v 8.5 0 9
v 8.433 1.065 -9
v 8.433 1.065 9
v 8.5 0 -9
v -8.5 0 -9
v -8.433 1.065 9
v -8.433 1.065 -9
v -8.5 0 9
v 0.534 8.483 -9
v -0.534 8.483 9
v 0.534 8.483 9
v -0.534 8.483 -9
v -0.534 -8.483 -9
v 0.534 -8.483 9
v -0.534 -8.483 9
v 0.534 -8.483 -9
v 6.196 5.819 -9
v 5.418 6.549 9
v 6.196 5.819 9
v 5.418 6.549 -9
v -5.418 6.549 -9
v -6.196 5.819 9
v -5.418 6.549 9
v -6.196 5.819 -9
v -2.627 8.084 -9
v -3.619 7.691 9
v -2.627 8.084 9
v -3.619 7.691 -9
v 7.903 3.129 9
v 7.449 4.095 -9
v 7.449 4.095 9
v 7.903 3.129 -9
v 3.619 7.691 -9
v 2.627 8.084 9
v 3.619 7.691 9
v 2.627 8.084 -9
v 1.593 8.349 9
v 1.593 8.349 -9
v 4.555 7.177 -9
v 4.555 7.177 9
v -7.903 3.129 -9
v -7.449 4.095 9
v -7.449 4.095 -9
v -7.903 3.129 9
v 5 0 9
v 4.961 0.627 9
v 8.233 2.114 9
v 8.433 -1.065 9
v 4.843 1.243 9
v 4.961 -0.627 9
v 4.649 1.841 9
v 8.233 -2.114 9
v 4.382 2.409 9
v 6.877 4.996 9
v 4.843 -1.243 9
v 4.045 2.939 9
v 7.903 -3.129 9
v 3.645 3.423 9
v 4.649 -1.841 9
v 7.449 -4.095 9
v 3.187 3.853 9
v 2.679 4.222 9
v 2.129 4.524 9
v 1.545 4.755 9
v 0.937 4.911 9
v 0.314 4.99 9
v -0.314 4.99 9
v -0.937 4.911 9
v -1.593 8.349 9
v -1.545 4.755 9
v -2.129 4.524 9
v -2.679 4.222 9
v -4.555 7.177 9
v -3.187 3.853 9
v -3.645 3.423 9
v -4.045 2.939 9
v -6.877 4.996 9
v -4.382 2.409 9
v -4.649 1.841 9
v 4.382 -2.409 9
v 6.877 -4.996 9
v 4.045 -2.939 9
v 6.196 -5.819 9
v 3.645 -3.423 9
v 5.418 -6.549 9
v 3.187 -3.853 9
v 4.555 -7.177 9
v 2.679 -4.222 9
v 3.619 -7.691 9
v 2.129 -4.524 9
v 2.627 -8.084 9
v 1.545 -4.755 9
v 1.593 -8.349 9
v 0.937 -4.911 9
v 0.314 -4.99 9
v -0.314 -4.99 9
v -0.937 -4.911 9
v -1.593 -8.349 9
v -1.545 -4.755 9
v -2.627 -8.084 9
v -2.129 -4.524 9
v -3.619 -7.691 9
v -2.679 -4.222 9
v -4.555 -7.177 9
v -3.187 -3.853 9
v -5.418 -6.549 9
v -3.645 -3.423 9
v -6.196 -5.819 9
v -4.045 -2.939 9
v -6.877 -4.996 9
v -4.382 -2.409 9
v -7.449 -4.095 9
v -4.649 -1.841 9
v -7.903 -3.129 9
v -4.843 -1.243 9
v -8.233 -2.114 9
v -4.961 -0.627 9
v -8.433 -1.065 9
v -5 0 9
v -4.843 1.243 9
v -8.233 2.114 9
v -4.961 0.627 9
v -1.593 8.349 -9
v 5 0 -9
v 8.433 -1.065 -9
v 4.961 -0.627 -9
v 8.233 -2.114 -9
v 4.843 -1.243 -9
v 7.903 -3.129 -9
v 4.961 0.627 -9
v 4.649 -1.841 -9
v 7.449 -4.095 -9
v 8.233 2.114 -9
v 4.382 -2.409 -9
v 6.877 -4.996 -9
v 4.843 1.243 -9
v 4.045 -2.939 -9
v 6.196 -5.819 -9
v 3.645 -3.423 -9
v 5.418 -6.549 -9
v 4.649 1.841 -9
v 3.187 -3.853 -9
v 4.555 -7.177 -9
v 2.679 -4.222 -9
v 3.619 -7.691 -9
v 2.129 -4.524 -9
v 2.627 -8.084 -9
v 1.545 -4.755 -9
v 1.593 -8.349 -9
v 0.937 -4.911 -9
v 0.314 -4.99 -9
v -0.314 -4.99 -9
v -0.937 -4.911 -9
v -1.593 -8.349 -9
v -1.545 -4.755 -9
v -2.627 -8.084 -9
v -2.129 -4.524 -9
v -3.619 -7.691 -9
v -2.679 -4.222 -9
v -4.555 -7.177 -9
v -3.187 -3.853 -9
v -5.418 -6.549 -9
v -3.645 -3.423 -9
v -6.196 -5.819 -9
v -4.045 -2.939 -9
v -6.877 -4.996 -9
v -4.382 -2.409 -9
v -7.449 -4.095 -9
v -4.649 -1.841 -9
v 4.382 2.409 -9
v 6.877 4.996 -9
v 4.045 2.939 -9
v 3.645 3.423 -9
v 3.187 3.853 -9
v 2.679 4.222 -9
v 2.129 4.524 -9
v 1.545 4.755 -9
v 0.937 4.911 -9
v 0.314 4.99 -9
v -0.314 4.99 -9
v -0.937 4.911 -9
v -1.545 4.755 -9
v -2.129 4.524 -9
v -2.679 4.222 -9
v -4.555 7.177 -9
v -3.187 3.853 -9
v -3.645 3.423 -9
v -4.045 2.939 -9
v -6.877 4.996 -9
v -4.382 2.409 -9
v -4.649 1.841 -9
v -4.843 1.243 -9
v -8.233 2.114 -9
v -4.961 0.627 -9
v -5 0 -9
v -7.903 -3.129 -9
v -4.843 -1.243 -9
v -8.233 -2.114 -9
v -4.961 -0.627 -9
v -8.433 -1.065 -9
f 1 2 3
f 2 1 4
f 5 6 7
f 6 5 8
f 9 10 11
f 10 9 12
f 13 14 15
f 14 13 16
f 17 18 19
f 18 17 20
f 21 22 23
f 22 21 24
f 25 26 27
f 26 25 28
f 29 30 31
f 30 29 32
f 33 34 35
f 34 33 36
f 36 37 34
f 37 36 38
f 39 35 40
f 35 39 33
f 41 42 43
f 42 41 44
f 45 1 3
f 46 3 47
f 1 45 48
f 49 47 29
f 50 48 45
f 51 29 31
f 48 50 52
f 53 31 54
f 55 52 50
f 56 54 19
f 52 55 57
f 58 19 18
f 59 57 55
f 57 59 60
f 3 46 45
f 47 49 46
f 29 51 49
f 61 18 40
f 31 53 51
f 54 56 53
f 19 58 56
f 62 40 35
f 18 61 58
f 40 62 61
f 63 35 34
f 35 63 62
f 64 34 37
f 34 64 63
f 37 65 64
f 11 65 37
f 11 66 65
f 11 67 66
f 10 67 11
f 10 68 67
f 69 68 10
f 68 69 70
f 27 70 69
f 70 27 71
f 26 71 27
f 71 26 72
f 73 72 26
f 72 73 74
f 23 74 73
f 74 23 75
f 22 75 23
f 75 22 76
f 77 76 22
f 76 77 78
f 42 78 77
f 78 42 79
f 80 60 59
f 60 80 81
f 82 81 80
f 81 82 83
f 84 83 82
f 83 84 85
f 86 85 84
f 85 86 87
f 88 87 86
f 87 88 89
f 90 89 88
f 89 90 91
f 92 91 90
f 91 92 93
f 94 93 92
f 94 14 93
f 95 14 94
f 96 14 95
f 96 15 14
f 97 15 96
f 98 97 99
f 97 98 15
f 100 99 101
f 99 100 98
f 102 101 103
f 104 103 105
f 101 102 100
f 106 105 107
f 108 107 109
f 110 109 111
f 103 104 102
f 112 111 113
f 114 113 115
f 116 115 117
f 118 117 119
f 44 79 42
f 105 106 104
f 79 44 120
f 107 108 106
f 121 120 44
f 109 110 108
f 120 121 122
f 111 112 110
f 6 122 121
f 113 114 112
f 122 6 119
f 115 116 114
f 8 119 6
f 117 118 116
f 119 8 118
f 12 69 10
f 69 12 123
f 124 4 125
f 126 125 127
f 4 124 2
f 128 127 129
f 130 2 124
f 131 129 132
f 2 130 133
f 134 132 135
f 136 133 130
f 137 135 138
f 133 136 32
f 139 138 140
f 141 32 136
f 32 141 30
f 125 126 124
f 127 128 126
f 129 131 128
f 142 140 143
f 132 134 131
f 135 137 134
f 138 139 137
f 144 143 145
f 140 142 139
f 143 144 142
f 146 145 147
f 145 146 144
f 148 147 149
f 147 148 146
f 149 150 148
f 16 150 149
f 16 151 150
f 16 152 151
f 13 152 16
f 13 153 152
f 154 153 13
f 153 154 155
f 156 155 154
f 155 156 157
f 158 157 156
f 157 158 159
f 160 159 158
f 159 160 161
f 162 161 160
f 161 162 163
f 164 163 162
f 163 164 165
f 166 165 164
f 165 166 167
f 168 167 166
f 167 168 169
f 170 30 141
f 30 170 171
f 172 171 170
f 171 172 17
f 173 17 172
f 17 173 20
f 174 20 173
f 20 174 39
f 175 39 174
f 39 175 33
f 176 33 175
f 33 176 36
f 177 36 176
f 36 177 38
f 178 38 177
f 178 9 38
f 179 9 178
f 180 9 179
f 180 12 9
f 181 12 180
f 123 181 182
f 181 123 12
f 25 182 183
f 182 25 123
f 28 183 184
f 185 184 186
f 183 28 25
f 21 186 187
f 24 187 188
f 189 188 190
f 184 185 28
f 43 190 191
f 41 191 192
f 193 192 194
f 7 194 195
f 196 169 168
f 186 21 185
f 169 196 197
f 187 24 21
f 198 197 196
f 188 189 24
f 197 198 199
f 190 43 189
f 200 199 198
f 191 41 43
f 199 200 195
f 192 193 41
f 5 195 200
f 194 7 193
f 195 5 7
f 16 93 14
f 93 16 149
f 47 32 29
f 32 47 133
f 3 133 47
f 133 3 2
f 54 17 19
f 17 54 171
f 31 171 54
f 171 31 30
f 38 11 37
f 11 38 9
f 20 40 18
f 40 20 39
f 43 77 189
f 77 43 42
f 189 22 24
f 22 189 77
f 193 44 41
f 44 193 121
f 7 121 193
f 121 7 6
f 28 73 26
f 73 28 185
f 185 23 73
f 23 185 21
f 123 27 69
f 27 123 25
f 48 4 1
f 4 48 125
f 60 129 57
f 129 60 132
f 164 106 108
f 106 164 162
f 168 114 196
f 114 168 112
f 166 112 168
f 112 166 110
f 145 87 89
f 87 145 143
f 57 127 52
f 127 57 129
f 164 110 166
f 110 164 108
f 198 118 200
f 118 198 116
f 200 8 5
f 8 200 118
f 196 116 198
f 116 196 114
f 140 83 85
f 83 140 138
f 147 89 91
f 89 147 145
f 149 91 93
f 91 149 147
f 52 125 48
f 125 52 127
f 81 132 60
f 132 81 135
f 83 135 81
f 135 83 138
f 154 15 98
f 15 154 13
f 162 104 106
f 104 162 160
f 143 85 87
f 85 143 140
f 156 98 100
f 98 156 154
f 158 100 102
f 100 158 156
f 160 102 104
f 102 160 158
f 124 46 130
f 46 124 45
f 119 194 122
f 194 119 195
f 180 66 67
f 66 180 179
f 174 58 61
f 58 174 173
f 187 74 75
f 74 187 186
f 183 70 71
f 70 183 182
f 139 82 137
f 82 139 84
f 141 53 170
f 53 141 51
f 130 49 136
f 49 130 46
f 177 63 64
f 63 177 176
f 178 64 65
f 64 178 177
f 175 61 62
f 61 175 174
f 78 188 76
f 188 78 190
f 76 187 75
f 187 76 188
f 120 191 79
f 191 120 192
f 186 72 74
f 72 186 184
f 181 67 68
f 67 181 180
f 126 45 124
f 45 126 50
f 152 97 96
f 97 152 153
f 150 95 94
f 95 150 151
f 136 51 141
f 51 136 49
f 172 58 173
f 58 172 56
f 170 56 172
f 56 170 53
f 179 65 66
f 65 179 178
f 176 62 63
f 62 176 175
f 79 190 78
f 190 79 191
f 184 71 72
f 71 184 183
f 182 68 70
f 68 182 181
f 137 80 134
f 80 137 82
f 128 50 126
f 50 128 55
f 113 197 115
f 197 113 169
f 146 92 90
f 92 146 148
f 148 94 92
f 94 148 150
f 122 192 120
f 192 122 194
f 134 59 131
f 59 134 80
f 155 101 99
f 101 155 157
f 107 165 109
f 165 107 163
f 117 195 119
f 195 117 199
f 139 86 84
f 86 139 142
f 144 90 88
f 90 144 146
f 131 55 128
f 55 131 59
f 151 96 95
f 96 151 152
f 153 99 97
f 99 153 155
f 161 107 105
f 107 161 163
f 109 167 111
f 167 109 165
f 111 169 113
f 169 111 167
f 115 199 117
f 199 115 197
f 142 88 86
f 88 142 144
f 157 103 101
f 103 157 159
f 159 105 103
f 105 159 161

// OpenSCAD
$fn = 50;


difference() {
	union() {
		translate(v = [0, 0, -9.0000000000]) {
			cylinder(h = 18, r = 8.5000000000);
		}
	}
	union() {
		translate(v = [0, 0, -100.0000000000]) {
			cylinder(h = 200, r = 5.0000000000);
		}
	}
}
